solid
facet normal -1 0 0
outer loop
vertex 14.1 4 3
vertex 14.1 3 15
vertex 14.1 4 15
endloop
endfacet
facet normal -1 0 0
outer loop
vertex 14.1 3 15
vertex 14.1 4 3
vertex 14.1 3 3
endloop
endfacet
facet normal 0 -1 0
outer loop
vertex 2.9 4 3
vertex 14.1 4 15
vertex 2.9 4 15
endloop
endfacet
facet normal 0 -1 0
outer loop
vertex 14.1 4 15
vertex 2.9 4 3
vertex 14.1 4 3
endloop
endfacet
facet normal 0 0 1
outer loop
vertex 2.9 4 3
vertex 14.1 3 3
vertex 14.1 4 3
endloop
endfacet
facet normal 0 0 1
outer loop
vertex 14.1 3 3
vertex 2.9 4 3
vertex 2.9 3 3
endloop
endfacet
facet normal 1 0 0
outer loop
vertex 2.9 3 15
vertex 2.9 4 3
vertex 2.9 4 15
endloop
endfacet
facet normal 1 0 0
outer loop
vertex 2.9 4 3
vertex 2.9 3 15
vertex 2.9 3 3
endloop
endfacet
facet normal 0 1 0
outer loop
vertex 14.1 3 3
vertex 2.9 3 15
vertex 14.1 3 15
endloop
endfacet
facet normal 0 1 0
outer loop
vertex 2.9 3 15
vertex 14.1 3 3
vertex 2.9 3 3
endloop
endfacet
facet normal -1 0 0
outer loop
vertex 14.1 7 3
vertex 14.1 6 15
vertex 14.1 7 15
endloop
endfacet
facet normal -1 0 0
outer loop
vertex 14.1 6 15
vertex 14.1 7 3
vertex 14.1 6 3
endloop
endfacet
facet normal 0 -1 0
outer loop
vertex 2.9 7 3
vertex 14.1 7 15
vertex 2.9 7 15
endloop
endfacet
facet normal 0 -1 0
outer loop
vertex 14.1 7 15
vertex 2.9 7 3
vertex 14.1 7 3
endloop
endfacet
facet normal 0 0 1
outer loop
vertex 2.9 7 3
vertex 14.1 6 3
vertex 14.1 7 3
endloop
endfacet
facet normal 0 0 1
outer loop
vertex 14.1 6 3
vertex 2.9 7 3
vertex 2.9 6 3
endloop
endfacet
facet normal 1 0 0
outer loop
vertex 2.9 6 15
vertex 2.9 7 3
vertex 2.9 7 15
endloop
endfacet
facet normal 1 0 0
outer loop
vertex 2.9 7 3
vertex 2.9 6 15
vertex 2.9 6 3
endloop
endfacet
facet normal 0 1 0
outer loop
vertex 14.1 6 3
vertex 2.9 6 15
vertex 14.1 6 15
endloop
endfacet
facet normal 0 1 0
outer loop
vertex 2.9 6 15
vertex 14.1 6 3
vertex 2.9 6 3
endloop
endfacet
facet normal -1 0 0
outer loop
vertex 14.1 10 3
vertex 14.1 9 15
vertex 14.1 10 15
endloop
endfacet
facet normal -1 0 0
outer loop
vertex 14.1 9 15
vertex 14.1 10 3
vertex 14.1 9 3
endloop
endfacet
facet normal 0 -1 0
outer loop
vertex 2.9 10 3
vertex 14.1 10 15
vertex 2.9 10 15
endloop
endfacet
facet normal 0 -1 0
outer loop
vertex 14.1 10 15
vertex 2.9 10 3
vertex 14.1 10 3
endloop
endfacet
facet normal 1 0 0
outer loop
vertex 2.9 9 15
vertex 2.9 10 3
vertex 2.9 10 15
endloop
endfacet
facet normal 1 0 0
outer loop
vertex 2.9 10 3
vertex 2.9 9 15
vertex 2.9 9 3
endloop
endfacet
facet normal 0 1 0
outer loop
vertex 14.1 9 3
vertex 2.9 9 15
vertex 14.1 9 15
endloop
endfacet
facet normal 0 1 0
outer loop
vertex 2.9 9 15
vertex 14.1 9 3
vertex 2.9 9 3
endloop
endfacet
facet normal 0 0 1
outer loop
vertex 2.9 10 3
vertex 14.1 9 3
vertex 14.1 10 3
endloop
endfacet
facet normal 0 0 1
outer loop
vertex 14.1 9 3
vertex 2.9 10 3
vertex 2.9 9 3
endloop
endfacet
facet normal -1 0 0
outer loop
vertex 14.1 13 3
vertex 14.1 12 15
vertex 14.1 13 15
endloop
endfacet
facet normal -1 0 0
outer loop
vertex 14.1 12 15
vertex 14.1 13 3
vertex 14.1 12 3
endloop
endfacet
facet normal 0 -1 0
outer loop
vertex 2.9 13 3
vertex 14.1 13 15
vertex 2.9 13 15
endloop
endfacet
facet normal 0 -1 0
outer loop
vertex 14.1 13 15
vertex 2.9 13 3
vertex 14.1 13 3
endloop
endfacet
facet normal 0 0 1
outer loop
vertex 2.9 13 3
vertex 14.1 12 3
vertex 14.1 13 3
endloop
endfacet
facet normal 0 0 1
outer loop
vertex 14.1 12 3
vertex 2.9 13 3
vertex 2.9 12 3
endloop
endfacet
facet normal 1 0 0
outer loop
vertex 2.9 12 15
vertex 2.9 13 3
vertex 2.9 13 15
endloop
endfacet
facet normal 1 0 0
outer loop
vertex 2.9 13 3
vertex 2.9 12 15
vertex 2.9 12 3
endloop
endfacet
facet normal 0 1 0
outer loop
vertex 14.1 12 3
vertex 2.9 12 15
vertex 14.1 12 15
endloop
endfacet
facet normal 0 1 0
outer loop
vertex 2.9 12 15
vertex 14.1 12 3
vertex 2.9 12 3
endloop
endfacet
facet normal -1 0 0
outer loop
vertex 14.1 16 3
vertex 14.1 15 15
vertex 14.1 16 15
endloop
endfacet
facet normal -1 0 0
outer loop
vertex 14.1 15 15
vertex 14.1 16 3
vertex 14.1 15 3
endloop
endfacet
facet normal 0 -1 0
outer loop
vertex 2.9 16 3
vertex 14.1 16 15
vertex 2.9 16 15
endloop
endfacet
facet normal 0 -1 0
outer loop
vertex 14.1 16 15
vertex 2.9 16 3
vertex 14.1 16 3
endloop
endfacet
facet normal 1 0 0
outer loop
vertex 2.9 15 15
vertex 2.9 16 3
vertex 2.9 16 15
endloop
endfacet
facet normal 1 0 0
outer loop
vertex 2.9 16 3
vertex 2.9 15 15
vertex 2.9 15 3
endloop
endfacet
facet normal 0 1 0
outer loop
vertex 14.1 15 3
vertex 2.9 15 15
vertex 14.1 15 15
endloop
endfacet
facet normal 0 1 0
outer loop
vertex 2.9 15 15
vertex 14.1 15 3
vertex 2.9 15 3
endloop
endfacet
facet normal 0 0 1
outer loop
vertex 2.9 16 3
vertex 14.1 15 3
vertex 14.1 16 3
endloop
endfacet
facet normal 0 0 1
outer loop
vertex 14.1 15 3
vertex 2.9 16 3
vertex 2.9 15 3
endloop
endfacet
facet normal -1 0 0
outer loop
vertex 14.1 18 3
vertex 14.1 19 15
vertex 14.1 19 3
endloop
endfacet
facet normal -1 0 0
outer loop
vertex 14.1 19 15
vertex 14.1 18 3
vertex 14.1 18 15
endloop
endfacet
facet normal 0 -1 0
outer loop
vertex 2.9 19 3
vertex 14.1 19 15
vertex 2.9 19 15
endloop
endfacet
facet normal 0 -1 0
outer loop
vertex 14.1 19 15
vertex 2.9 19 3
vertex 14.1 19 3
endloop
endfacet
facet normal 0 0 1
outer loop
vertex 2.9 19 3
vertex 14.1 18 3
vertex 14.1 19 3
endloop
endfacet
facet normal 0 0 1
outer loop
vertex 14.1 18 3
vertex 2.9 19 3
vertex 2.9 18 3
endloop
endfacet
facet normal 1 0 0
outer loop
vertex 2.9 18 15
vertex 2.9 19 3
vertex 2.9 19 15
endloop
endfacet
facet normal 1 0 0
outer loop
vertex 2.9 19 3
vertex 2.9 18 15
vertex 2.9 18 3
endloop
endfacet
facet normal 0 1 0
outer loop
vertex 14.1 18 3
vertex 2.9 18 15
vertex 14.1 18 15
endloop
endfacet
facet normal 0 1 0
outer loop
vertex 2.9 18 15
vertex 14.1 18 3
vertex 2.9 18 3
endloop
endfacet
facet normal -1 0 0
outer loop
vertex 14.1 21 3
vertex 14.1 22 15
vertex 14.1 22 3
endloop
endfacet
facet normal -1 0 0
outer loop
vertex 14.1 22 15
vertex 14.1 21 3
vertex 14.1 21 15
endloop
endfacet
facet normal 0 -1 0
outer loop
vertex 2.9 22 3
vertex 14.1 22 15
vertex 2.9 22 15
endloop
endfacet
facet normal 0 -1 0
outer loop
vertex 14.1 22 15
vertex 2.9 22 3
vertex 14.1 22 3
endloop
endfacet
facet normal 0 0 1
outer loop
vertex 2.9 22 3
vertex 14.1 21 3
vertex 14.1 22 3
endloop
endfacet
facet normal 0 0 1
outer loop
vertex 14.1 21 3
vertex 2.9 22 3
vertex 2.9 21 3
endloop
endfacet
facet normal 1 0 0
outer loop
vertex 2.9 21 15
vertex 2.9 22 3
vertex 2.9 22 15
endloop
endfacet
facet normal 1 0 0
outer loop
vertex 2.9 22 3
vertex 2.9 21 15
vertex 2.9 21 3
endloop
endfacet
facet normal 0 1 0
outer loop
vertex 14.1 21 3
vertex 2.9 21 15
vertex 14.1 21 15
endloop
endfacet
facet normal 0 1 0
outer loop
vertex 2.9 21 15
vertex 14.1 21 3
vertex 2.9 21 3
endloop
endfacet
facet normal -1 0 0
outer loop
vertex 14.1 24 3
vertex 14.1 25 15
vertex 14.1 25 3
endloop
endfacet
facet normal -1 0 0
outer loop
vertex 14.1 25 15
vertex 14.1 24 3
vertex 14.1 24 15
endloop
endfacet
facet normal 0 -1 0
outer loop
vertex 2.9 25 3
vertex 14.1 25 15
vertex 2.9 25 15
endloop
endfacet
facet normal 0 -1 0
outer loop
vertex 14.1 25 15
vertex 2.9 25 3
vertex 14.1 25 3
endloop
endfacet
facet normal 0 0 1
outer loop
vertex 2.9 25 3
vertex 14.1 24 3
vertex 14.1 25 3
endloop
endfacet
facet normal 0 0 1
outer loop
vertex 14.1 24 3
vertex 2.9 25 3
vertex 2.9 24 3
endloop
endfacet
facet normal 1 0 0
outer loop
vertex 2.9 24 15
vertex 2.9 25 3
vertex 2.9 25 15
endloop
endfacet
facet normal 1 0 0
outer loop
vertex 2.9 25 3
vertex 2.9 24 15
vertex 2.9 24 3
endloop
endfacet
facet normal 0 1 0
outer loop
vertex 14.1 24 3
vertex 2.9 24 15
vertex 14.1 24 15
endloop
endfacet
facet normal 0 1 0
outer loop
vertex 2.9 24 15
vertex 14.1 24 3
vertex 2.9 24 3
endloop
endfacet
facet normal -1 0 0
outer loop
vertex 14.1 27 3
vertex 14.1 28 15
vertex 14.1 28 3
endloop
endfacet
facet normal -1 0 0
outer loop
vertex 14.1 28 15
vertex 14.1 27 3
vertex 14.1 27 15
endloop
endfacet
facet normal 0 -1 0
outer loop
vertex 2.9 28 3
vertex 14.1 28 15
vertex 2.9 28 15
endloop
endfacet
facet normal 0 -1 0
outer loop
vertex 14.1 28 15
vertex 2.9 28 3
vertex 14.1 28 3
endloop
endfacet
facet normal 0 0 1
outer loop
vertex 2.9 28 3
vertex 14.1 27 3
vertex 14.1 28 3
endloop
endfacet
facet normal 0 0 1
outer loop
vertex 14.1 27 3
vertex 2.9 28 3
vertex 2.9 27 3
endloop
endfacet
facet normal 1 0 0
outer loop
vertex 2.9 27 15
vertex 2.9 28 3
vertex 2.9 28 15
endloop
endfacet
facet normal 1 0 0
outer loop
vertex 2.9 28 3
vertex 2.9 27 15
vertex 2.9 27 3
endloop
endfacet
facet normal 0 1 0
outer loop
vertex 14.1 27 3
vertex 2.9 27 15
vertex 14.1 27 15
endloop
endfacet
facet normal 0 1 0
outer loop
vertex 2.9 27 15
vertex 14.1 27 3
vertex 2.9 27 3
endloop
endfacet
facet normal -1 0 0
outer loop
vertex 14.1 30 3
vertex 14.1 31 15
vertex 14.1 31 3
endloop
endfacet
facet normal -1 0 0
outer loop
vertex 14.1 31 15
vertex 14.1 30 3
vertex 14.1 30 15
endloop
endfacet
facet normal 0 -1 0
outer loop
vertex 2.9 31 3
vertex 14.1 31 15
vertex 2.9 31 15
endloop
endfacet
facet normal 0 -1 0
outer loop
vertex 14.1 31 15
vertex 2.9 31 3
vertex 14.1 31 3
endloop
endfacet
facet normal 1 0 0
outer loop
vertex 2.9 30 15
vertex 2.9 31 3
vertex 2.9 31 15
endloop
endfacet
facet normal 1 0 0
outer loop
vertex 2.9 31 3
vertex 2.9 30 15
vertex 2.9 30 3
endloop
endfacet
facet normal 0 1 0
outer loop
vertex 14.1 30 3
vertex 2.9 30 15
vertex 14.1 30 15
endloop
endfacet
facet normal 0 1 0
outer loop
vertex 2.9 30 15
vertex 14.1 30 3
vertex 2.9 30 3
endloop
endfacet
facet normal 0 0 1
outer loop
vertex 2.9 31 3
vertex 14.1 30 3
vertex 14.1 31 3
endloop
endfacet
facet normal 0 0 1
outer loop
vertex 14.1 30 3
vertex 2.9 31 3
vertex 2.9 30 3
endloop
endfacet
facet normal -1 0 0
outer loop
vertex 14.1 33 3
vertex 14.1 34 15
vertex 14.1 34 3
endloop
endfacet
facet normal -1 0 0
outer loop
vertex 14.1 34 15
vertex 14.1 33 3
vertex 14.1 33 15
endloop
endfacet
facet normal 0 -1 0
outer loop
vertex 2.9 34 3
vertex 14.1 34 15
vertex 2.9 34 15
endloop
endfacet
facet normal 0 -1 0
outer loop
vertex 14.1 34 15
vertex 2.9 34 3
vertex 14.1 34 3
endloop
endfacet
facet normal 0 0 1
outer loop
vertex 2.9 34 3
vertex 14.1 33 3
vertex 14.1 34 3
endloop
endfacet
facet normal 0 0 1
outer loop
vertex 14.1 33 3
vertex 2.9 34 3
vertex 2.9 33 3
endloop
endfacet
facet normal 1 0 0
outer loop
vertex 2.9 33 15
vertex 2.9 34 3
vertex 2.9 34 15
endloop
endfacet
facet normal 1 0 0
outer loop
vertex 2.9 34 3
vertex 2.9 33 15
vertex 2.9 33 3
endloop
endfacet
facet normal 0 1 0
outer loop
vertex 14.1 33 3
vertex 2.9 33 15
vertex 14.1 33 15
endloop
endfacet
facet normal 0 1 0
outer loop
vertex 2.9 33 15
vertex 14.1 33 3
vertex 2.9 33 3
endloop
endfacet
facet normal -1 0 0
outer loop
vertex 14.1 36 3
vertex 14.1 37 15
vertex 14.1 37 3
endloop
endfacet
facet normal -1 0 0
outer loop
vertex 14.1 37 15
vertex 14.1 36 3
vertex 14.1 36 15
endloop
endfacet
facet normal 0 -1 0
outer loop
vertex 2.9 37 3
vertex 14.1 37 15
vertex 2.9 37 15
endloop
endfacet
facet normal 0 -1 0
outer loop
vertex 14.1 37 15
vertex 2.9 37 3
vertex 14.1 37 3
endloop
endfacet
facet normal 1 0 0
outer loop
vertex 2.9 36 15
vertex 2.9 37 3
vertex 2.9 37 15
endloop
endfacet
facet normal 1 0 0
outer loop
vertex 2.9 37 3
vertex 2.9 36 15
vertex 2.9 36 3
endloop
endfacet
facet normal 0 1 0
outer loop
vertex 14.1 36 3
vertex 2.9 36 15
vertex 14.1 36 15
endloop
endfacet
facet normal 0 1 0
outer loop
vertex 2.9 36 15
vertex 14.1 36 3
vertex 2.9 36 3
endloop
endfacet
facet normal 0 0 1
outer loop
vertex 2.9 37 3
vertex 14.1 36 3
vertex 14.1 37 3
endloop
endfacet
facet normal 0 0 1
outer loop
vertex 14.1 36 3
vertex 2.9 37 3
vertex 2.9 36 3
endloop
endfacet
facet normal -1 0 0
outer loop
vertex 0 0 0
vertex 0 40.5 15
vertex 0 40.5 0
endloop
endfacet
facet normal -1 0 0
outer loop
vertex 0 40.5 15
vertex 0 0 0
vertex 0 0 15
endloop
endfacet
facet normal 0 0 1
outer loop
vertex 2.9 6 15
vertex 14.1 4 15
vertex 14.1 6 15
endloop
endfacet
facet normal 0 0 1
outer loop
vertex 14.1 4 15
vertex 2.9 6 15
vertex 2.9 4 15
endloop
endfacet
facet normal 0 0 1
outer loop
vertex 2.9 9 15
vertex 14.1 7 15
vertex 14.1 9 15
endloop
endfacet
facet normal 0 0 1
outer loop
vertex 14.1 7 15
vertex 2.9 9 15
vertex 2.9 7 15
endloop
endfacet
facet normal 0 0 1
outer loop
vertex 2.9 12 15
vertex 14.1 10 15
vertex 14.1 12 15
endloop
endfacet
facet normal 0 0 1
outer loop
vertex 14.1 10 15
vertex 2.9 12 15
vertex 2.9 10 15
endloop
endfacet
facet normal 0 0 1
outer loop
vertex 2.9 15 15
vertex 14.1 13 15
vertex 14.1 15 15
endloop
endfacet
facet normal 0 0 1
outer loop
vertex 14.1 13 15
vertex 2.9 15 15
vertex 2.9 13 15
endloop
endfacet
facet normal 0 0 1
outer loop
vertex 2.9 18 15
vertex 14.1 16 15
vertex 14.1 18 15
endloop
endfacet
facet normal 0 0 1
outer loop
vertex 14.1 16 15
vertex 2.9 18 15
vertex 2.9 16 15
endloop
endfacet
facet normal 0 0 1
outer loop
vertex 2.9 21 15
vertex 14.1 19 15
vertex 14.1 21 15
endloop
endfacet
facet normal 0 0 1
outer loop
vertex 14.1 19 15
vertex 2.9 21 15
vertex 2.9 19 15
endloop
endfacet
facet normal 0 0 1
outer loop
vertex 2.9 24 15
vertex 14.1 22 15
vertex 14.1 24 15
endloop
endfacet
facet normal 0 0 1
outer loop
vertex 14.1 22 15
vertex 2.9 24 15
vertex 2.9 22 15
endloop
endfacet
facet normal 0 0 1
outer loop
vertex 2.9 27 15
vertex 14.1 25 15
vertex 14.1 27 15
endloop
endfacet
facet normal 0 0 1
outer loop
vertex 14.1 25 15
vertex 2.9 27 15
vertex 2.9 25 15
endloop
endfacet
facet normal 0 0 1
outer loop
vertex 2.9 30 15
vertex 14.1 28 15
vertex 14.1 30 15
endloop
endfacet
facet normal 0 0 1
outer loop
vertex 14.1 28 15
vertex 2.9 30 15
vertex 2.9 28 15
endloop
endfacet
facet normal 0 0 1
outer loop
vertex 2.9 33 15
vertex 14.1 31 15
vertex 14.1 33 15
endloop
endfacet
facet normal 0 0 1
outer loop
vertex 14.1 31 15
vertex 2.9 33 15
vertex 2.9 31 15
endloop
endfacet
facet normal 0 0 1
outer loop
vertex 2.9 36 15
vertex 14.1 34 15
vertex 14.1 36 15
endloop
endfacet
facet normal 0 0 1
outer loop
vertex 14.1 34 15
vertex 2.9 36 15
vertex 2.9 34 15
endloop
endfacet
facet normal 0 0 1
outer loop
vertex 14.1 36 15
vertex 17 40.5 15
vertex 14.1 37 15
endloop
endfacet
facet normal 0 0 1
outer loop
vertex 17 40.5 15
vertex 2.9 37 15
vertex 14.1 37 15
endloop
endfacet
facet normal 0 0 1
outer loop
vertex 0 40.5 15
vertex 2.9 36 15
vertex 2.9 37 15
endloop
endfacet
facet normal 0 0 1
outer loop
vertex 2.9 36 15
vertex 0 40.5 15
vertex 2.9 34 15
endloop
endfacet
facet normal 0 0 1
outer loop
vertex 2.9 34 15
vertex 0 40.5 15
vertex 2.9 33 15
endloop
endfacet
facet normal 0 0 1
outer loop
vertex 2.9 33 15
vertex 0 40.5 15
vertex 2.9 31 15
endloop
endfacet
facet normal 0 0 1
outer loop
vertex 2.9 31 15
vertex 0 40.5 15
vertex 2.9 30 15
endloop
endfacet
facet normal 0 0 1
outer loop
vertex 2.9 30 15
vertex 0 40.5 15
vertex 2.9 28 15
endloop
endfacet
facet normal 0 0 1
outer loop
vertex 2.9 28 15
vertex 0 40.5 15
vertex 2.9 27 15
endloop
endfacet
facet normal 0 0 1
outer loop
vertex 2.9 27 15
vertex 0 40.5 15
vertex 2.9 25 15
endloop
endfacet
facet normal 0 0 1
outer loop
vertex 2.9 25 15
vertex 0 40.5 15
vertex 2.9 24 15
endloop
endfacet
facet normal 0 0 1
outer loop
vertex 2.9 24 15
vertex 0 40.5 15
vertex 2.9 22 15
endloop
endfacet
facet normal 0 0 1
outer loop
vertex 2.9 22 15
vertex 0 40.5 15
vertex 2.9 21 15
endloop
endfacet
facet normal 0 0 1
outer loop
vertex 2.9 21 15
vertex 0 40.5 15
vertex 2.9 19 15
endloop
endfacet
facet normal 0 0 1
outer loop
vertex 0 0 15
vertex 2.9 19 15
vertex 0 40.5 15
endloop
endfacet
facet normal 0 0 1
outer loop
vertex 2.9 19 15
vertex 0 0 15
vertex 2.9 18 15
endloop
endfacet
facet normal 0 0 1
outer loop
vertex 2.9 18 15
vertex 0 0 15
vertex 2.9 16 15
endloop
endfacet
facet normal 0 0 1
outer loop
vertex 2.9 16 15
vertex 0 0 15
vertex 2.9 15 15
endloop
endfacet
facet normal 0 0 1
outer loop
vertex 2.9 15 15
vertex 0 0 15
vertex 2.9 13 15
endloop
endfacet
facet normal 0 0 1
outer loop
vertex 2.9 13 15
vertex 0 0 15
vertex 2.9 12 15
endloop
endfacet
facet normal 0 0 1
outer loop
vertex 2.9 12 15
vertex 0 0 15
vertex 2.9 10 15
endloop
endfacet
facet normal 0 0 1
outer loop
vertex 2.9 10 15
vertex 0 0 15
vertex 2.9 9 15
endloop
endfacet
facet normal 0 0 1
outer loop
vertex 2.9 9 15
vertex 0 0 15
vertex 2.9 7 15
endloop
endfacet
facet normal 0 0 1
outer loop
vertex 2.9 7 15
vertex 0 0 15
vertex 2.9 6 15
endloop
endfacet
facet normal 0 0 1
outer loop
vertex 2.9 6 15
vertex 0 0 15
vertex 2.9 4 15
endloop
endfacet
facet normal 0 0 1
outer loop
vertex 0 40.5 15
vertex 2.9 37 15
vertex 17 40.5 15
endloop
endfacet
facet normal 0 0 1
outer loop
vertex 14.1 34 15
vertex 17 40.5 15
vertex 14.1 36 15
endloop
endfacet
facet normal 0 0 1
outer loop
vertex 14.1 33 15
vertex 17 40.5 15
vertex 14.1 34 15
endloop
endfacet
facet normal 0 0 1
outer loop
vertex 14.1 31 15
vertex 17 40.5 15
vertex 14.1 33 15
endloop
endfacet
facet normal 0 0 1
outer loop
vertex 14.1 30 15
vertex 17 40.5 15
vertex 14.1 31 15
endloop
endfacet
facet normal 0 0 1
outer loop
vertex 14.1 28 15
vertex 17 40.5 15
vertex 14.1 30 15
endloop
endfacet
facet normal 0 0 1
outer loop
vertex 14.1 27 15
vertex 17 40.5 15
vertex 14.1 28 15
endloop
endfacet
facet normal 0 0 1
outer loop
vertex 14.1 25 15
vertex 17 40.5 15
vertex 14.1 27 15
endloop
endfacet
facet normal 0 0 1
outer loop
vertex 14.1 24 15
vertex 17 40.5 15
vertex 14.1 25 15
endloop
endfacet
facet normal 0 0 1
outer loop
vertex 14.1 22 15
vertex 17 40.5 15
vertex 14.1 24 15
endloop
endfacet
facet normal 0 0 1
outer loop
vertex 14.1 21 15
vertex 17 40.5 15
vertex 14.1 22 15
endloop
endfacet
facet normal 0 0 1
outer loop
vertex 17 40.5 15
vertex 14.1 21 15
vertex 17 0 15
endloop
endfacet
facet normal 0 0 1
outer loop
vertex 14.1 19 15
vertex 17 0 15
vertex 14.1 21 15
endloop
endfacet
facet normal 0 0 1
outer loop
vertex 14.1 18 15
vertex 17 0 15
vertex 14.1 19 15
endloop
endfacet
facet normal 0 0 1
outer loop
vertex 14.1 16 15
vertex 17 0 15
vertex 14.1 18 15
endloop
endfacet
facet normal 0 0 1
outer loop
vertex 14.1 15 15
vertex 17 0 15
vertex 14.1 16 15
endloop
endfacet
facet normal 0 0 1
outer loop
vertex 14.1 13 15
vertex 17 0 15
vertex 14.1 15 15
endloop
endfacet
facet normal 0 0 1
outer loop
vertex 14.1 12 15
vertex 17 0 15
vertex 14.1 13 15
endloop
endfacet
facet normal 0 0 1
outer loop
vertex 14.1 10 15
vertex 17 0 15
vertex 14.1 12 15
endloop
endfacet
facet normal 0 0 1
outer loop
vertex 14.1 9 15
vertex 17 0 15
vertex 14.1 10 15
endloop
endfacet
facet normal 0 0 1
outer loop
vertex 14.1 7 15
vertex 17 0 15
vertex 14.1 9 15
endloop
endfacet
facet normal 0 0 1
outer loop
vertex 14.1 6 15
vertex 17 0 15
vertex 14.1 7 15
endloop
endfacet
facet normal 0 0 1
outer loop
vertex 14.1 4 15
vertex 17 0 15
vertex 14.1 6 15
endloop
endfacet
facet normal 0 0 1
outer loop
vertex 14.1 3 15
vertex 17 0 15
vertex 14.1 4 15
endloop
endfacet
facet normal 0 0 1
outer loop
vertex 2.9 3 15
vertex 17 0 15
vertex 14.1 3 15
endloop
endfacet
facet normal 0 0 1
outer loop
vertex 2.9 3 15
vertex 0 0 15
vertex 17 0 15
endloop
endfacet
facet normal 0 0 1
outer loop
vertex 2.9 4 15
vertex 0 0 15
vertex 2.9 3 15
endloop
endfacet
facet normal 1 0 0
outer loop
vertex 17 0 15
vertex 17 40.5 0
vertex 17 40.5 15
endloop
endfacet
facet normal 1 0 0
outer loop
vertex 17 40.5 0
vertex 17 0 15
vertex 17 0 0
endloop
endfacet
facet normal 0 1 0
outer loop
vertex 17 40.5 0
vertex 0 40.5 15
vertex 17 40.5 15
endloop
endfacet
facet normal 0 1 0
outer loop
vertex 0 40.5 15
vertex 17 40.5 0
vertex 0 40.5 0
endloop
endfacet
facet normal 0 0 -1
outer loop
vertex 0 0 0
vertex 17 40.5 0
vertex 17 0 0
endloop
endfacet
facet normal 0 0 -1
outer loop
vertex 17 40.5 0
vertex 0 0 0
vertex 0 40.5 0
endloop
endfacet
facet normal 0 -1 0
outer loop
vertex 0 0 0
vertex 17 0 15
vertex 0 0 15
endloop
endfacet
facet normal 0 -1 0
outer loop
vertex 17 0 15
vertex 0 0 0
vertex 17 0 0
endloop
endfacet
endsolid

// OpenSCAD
micro_sd_x = 11;
micro_sd_y = 15;
micro_sd_z = 1;
padding = 3;

micro_sd_slots = 12;

module micro_sd_kort(extra_x = 0, extra_y = 0, extra_z = 0) {
    translate([-extra_x/2,-extra_y/2,-extra_z/2])
        cube([micro_sd_x+extra_x,micro_sd_y+extra_y,micro_sd_z+extra_z]);    
}

module micro_sd_blokk() {
    micro_sd_blokk_y = micro_sd_z*padding*(1.5+micro_sd_slots);
    micro_sd_blokk_x = micro_sd_x+padding*2;
    micro_sd_blokk_z = micro_sd_y+padding-padding;
    cube([micro_sd_blokk_x,micro_sd_blokk_y,micro_sd_blokk_z]);
}

difference() {
    micro_sd_blokk();
    translate([0,0,0]) {
        for (i=[1:1:micro_sd_slots]) {
            echo("i is ", i);
            translate([padding,i*padding,micro_sd_y+padding]) {
                rotate([270,0,0]) {
                    micro_sd_kort(0.2,0,0);
                }
            }
        }
    }
}
